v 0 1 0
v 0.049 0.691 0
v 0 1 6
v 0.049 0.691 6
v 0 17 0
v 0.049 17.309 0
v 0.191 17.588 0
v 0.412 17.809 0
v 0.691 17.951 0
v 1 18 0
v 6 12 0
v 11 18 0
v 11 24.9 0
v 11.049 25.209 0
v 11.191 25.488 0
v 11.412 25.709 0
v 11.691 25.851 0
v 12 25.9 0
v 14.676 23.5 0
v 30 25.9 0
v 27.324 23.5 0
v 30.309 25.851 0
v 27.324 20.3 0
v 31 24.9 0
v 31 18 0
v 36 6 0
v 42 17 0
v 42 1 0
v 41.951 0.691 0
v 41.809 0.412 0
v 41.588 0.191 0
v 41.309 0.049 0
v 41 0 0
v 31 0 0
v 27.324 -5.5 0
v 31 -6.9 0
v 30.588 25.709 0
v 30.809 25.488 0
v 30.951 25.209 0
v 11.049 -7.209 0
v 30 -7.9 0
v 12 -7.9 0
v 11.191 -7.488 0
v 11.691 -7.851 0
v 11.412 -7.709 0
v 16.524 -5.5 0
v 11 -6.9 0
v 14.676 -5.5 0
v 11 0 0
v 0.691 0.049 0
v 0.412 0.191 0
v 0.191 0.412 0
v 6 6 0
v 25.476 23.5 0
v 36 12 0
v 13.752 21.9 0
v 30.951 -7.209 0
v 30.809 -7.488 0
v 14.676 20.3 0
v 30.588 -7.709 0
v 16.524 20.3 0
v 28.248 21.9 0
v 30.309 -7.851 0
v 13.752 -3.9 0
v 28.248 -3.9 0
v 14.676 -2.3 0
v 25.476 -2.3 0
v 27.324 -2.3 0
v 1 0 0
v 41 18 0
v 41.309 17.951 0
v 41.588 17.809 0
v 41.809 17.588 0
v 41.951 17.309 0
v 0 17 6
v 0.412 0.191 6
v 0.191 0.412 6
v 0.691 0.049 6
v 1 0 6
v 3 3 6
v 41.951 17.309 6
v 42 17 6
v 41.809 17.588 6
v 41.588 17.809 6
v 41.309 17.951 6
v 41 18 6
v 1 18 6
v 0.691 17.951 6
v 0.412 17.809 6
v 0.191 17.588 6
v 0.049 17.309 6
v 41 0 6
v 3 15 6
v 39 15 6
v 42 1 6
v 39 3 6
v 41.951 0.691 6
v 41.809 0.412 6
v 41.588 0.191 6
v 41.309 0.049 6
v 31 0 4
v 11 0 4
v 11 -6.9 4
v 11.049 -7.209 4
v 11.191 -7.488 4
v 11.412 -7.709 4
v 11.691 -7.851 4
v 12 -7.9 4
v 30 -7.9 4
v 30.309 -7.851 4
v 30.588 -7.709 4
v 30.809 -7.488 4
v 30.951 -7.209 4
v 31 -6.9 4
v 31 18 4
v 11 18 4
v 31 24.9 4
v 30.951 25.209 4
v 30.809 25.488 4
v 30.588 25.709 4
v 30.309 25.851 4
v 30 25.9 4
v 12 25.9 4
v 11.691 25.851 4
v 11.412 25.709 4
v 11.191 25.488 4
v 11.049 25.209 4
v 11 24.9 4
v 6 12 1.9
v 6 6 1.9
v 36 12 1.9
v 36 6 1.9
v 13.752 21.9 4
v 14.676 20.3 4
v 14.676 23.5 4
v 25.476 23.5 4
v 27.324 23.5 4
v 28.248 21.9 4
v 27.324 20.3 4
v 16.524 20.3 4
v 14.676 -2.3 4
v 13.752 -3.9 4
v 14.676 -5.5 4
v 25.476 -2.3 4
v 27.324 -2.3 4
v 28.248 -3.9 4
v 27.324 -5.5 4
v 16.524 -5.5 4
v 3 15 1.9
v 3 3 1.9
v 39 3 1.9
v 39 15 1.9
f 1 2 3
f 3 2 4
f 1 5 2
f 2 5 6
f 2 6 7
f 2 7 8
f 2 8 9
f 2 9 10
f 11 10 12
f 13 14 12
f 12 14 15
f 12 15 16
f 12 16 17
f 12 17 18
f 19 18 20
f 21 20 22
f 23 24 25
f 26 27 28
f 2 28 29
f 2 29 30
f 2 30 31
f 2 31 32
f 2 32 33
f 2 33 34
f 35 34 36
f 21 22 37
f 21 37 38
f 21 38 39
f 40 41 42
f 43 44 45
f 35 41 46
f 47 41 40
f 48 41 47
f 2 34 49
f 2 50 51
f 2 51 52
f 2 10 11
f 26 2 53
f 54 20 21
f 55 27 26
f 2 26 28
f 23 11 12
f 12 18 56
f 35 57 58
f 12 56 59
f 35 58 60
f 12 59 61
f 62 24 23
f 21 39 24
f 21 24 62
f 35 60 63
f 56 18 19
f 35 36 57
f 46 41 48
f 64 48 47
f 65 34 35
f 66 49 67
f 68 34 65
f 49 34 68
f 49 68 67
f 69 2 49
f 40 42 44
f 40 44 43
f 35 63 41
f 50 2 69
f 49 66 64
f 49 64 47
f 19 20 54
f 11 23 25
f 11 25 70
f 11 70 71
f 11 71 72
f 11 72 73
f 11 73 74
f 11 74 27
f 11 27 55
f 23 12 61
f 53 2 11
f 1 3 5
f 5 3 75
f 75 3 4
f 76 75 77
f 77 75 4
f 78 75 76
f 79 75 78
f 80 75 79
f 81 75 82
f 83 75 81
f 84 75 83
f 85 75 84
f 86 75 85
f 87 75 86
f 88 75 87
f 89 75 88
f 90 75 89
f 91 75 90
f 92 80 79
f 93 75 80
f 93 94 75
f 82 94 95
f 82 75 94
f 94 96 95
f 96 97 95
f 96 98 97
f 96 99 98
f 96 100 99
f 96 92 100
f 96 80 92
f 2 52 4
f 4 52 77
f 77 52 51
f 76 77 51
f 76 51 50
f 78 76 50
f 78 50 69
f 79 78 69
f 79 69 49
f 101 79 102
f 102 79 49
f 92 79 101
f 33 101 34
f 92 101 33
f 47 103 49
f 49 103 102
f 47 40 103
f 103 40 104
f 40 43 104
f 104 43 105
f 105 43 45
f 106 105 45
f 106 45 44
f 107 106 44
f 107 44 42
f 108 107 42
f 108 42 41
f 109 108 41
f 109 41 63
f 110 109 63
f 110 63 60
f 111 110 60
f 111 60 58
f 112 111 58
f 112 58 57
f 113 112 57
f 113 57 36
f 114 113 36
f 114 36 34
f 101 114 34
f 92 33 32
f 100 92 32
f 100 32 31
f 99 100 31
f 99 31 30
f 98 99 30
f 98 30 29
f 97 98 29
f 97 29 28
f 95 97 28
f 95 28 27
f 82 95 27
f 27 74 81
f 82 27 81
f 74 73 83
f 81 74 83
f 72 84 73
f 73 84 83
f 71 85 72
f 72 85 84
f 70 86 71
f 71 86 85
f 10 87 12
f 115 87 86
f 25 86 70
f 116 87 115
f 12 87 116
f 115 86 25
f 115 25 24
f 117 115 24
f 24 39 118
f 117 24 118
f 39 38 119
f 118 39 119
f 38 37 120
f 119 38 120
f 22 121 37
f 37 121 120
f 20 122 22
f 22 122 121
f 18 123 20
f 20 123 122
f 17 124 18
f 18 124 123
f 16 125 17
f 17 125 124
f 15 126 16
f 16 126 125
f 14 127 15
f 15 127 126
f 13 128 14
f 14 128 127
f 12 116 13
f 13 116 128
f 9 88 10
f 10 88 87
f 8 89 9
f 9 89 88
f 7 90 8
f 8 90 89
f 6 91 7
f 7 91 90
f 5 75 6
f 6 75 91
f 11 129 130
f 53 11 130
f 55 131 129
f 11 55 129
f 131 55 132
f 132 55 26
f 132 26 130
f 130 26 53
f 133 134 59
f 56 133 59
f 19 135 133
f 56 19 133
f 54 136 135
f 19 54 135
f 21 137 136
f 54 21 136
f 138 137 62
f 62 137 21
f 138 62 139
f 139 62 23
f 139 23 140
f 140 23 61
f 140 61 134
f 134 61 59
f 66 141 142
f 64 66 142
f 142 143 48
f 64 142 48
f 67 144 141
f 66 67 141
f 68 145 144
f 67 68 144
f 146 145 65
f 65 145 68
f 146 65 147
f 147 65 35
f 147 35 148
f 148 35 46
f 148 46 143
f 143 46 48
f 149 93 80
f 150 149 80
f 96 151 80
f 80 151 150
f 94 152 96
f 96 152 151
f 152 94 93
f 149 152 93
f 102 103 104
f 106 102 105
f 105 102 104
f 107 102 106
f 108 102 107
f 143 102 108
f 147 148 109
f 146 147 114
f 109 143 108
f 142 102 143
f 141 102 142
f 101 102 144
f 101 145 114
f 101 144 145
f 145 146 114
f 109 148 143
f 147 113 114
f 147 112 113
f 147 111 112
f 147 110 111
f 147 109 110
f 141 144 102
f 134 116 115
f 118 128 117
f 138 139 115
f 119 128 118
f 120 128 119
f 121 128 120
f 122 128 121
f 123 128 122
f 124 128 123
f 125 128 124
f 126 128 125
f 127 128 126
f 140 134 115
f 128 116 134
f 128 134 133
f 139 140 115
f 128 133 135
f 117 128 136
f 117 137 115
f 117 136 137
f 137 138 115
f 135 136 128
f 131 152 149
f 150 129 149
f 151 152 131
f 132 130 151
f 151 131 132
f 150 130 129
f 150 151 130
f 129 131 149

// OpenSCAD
//-----------------------------------------------------------------------------------
// printed PCB holder
// based on Optical endstop holder
// see https://github.com/Stemer114/things/tree/master/reprap
// can be either hot-glued or mounted using screws or both
// (c) 2013 by Stemer114
// License: licensed under the Creative Commons - GNU GPL license.
//          http://www.gnu.org/licenses/gpl-2.0.html
//-----------------------------------------------------------------------------------

//-----------------------------------------------------------------------------------
//display settings
//-----------------------------------------------------------------------------------

//color settings

//-----------------------------------------------------------------------------------
//global configuration settings
//-----------------------------------------------------------------------------------
de = 0.1; //delta param, so differences are scaled and do not become manifold
fn_hole = 12;  //fn setting for round holes/bores (polyhole)
ex = 0;  //offset for Explosivdarstellung, set to 0 for none

//-----------------------------------------------------------------------------------
//configuration settings
//-----------------------------------------------------------------------------------
F01 = true;  //enable cutout for hot glue mounting to base
F02 = true;  //enable mounting bracket (for slot holes)

//endstop pcb size plus tolerance
P1 = 36;
P2 = 12;
P3 = 3;  //frame width
P4 = 8;  //fixing bracket width
P5 = 20; //fixing bracket length
P6 = 3.2; //fixing slot width
P7 = 14;  //fixing slot length

P10 = 6;  //holder thickness
P11 = 4;   //depth of pcb bed
P12 = 4;   //fixing bracket thickness

P20 = 1;   //corner radius for large block

P21 = 3;  //width of frame for hot glue cutout

//-----------------------------------------------------------------------------------
// libraries
//-----------------------------------------------------------------------------------
//include <lib/common.scad>

//-----------------------------------------------------------------------------------
// main rendering
//-----------------------------------------------------------------------------------


//transparent 10mm cube for debugging
//translate([0, 0, -10])
//% cube(10, 10, 10);

HolderBase();

//mounting brackets (with slot holes)
if (F02) {
    //move the holders epsilon (de) into the base, so we are surly manifold
    translate([(P1+2*P3-P5)/2, -P4+de, 0])
        Bracket();

    //ditto
    translate([P5+(P1+2*P3-P5)/2, P4+P2+2*P3-de, 0])
        rotate([0, 0, 180])
        Bracket();
}



//-----------------------------------------------------------------------------------
// modules
//-----------------------------------------------------------------------------------

module HolderBase()
{
    difference()
    {
        union()
        {
            //cube([P3+P1+P3, P3+P2+P3, P10], center=false);
            CubeRounded(P3+P1+P3, P3+P2+P3, P10, P20, corners=[1, 1, 1, 1]);

        }  //end union

        union()
        {
            //cutout for PCB
            translate([P3, P3, P10-P11-de])
                cube([P1, P2, P11+2*de], center=false);

            if (F01) {
                //optionally cutout for hot glue mounting to base
                translate([P3+P21, P3+P21, -de])
                    cube([P1-2*P21, P2-2*P21, P10-P11+2*de], center=false);
            }
        } //end union

    }  //end difference
}  //end module HolderBase

module Bracket()
{
    difference()
    {
        union()
        {
            CubeRounded(P5, P4, P12, P20, corners=[1, 1, 0, 0]);
            //cube([P5, P4, P12], center=false);
        }

        union()
        {
            hull() {
            translate([(P5-P7)/2+P6/2, P4/2, -de])
                polyhole(P12+2*de, P6);
            translate([(P5-P7)/2+P7-P6/2, P4/2, -de])
                polyhole(P12+2*de, P6);
            }


        }
    }
}


//-----------------------------------------------------------------------------------
// utility functions
//-----------------------------------------------------------------------------------

//polyhole by nophead
//see http://hydraraptor.blogspot.de/2011/02/polyholes.html
module polyhole(h, d) {
    n = max(round(2 * d),3);
    rotate([0,0,180])
        cylinder(h = h, r = (d / 2) / cos (180 / n), $fn = n);
}


/* creates a cube with rounded corners in z direction
   with the corners array it can be specified, which corners are rounded
   (default: all)
   */
module CubeRounded(x, y, z, r, corners=[1, 1, 1, 1]) {
    $fn=20;

    hull() {
        //lower left
        translate([r, r, 0]) 
            CubeCorner(r, z, corners[0]);

        //lower right
        translate([x-r, r, 0])
            CubeCorner(r, z, corners[1]);

        //upper left
        translate([r, y-r, 0])
            CubeCorner(r, z, corners[2]);

        //upper right
        translate([x-r, y-r, 0])
            CubeCorner(r, z, corners[3]);
    }
}

module CubeCorner(r, z, cornermode) {
    if (cornermode==1) {
        cylinder(h=z, r=r);
    } else {
        translate([0, 0, z/2])
            cube([2*r, 2*r, z], center=true);
    }
} 
